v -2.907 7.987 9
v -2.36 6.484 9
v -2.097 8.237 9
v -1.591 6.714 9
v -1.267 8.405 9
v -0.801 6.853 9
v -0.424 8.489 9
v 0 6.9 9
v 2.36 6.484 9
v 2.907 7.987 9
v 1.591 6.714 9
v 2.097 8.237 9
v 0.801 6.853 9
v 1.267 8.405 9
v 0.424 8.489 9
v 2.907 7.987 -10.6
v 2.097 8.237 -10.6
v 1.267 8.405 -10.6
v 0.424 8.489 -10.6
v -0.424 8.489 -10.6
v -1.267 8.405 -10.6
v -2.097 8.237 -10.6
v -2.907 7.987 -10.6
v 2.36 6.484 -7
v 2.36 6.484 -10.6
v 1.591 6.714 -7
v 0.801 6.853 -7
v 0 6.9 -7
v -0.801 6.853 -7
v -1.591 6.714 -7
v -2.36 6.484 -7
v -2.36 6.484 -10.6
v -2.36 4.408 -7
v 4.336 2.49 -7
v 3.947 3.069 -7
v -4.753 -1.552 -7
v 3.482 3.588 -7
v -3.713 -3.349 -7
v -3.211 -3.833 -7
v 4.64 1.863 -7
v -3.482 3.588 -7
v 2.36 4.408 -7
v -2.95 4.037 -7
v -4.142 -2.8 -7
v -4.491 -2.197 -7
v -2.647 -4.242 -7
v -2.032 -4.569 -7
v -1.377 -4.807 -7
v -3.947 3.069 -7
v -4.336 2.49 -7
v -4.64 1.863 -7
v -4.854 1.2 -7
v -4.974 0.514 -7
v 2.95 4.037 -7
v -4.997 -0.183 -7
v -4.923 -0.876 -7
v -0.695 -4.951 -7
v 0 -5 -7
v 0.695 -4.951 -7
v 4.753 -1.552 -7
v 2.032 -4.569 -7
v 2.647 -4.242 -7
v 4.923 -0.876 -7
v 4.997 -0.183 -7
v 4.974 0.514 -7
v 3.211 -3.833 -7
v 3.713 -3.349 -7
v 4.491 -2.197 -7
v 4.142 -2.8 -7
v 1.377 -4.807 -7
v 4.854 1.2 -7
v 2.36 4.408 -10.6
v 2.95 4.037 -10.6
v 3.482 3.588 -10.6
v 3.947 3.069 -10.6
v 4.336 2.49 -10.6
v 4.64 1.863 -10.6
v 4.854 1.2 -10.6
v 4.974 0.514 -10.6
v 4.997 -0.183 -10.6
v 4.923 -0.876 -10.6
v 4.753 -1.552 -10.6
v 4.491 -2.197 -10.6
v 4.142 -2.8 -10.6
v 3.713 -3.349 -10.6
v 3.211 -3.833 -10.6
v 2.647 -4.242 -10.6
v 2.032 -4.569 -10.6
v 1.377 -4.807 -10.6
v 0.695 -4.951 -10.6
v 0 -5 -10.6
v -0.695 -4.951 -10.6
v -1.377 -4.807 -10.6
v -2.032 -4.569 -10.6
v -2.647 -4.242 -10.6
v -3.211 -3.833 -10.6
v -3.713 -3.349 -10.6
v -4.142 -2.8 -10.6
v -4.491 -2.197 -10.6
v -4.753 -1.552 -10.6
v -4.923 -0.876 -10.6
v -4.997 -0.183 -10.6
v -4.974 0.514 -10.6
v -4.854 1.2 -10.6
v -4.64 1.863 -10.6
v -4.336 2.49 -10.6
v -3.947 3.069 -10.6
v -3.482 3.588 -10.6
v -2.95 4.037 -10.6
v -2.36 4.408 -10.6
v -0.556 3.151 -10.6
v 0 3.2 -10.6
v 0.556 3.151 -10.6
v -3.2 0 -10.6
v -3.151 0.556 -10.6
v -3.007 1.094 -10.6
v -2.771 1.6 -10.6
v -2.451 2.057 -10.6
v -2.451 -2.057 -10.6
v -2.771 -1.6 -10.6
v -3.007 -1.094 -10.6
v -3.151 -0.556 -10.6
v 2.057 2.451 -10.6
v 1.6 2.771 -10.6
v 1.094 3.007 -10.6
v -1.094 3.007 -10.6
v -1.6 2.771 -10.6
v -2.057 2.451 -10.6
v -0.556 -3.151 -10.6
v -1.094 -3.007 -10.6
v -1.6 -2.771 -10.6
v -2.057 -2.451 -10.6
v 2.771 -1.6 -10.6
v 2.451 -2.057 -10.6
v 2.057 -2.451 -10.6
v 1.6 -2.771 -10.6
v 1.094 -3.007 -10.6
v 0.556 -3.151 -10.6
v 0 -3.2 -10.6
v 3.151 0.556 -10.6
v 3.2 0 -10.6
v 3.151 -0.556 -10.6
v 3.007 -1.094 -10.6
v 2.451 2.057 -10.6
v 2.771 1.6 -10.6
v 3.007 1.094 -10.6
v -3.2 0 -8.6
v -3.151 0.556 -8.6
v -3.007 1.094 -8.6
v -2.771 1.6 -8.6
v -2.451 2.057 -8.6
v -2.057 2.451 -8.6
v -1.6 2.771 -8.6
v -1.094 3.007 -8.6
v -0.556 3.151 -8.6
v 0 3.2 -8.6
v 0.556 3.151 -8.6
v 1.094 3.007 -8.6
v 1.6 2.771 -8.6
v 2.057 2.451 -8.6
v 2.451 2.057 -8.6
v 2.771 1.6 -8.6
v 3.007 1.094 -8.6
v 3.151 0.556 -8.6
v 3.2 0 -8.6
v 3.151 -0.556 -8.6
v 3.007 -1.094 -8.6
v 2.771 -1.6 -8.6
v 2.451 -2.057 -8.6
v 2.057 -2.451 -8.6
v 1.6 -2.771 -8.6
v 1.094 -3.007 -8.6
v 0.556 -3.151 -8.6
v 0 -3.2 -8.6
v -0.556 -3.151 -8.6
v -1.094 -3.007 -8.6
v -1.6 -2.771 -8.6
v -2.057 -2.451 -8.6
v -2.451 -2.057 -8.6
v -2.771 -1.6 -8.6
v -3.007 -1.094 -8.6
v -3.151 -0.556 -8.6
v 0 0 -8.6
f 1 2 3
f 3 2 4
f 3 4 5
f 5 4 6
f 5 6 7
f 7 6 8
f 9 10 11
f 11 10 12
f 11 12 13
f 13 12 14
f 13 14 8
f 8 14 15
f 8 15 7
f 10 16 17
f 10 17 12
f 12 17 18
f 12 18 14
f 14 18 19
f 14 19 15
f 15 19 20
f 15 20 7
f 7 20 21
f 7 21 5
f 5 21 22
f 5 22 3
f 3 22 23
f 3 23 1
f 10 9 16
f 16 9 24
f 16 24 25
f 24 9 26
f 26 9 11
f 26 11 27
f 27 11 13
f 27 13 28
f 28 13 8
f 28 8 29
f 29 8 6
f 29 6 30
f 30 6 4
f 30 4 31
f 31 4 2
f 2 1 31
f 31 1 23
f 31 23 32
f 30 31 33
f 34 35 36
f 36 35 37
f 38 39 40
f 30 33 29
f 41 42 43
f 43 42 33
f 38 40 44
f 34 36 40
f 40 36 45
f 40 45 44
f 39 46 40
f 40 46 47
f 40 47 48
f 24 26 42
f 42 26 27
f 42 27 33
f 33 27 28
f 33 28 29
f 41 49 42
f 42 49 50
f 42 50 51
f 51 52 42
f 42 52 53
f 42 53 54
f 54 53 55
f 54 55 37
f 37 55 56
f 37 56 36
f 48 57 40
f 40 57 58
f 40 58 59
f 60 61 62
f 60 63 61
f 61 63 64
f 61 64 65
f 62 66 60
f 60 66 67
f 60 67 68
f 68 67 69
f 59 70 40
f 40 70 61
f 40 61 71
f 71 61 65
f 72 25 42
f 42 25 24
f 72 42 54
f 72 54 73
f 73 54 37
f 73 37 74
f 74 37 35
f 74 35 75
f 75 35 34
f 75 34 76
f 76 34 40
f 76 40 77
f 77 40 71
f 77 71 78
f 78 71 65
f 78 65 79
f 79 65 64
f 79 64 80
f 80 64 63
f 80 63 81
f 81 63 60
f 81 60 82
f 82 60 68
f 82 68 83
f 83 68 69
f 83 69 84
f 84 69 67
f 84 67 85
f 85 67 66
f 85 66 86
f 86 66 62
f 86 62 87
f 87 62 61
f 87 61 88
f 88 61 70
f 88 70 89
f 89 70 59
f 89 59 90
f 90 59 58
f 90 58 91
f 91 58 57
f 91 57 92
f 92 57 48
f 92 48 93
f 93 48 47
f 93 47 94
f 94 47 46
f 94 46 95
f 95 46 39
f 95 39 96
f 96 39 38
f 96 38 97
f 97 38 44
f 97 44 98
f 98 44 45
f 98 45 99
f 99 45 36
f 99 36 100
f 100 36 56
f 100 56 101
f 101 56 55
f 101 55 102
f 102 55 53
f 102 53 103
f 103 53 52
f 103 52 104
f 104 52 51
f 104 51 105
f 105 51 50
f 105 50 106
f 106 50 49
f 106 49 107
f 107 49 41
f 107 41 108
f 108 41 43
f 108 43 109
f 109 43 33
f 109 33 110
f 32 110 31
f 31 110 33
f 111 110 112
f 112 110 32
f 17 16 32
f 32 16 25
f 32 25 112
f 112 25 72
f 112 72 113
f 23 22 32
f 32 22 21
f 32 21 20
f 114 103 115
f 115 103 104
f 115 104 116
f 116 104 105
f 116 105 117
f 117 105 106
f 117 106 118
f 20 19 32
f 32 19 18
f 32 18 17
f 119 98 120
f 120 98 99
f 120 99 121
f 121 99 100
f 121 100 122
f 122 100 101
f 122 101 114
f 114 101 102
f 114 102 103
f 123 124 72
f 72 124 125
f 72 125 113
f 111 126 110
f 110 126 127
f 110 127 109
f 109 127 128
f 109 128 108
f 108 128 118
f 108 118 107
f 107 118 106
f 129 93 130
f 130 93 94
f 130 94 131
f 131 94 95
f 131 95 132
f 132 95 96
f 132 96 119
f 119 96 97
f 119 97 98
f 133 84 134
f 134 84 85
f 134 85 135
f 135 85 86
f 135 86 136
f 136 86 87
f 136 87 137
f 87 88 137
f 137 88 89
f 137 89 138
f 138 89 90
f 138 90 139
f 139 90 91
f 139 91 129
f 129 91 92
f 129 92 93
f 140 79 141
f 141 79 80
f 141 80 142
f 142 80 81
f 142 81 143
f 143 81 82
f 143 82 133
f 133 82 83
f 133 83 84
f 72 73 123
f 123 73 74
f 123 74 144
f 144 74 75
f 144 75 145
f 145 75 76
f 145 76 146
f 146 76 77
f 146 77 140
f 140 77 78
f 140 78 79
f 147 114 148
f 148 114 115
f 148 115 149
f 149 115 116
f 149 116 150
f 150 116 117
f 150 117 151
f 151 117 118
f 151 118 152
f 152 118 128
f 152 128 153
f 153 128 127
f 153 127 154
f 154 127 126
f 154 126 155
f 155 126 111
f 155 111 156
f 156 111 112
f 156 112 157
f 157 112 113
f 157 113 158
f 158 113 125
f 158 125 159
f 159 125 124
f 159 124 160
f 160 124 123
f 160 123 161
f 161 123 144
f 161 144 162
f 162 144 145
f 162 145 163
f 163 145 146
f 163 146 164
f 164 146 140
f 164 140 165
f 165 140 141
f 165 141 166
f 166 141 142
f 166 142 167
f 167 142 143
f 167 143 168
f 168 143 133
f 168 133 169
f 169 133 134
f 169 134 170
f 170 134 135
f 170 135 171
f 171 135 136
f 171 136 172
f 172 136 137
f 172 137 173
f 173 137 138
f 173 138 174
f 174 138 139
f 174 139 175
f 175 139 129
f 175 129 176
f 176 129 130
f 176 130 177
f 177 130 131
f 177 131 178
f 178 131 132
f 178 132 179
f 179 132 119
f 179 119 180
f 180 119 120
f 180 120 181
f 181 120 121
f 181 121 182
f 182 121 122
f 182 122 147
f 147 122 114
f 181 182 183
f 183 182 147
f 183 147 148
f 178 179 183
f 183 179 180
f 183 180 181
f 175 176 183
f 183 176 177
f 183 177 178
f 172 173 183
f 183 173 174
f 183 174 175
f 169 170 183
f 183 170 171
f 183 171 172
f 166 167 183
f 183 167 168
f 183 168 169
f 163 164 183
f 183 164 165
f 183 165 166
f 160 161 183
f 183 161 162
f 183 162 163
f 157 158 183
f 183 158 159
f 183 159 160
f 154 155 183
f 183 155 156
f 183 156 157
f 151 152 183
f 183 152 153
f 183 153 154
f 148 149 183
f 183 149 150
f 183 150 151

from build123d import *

# Parameters (mm, degrees)
SKETCH_1_R               = 8.5
SKETCH_1_R_2             = 3.6
SKETCH_1_R_3             = 1.25
SKETCH_1_R_4             = 0.6
EXTRUDE_1_DEPTH          = 9
SKETCH_2_R               = 4.3
CUT_EXTRUDE_1_DEPTH      = 0.8
SKETCH_3_R               = 5.9
SKETCH_3_R_2             = 3.6
EXTRUDE_2_DEPTH          = 2.5
SKETCH_5_R               = 4.3
CUT_EXTRUDE_2_DEPTH      = 0.8
EXTRUDE_3_DEPTH          = 7
CUT_EXTRUDE_6_DEPTH      = 1
CUT_EXTRUDE_6_DEPTH_BACK = 17
EXTRUDE_4_DEPTH          = 3.6
SKETCH_8_R               = 3.2
CUT_EXTRUDE_3_DEPTH      = 2


with BuildPart() as part:
    # 스케치1 → 보스-돌출1 (new body)
    with BuildSketch(Plane.XY):
        Circle(SKETCH_1_R)
        Circle(SKETCH_1_R_2, mode=Mode.SUBTRACT)
        with Locations((6.125, 0)):
            Circle(SKETCH_1_R_3, mode=Mode.SUBTRACT)
        with Locations((-6.8, 0)):
            Circle(SKETCH_1_R_4, mode=Mode.SUBTRACT)
    extrude(amount=EXTRUDE_1_DEPTH)

    # 스케치2 → 컷-돌출1 (cut)
    with BuildSketch(Plane.XY.offset(9)):
        Circle(SKETCH_2_R)
    extrude(amount=-CUT_EXTRUDE_1_DEPTH, mode=Mode.SUBTRACT)

    # 스케치3 → 보스-돌출2 (add)
    with BuildSketch(Plane(origin=(0, 0, 0), x_dir=(-1, 0, 0), z_dir=(0, 0, -1))):
        Circle(SKETCH_3_R)
        Circle(SKETCH_3_R_2, mode=Mode.SUBTRACT)
    extrude(amount=EXTRUDE_2_DEPTH)

    # 스케치4 → 컷-회전1 (revolve, cut)
    with BuildSketch(Plane(origin=(0, 0, 0), x_dir=(0, 0, -1), z_dir=(1, 0, 0))):
        Polygon((2.5, 5.9), (0, 5.9), (1.25, 4.6), align=None)
    revolve(axis=Axis((0, 0, 0), (0, 0, -1)), mode=Mode.SUBTRACT)

    # 스케치5 → 컷-돌출2 (cut)
    with BuildSketch(Plane(origin=(0, 0, -2.5), x_dir=(-1, 0, 0), z_dir=(0, 0, -1))):
        Circle(SKETCH_5_R)
    extrude(amount=-CUT_EXTRUDE_2_DEPTH, mode=Mode.SUBTRACT)

    # 스케치6 → 보스-돌출3 (add)
    with BuildSketch(Plane(origin=(0, 0, 0), x_dir=(-1, 0, 0), z_dir=(0, 0, -1))):
        with BuildLine():
            Line((-2.907171218, 7.987387277), (-2.359938989, 6.483879083))
            ThreePointArc((-2.359938989, 6.483879083), (0, 6.9), (2.359938989, 6.483879083))
            Line((2.359938989, 6.483879083), (2.907171218, 7.987387277))
            ThreePointArc((2.907171218, 7.987387277), (0, 8.5), (-2.907171218, 7.987387277))
        make_face()
    extrude(amount=EXTRUDE_3_DEPTH)

    # 스케치10 → 컷-돌출6 (cut, two sides)
    with BuildSketch(Plane(origin=(0, 0, -7), x_dir=(-1, 0, 0), z_dir=(0, 0, -1))) as cut_extrude_6_sk:
        with BuildLine():
            ThreePointArc((-2.907171218, 7.987387277), (0, -8.5), (2.907171218, 7.987387277))
            Line((2.907171218, 7.987387277), (2.359938989, 6.483879083))
            ThreePointArc((2.359938989, 6.483879083), (0, 6.9), (-2.359938989, 6.483879083))
            Line((-2.359938989, 6.483879083), (-2.907171218, 7.987387277))
        make_face()
    extrude(amount=CUT_EXTRUDE_6_DEPTH, mode=Mode.SUBTRACT)
    extrude(cut_extrude_6_sk.sketch, amount=-CUT_EXTRUDE_6_DEPTH_BACK, mode=Mode.SUBTRACT)

    # 스케치7 → 보스-돌출4 (add)
    with BuildSketch(Plane(origin=(0, 0, -7), x_dir=(-1, 0, 0), z_dir=(0, 0, -1))):
        with BuildLine():
            Line((-2.359938989, 6.483879083), (-2.359938989, 4.408025405))
            ThreePointArc((-2.359938989, 4.408025405), (0, -5), (2.359938989, 4.408025405))
            Line((2.359938989, 4.408025405), (2.359938989, 6.483879083))
            Line((2.359938989, 6.483879083), (2.907171218, 7.987387277))
            ThreePointArc((2.907171218, 7.987387277), (0, 8.5), (-2.907171218, 7.987387277))
            Line((-2.907171218, 7.987387277), (-2.359938989, 6.483879083))
        make_face()
    extrude(amount=EXTRUDE_4_DEPTH)

    # 스케치8 → 컷-돌출3 (cut)
    with BuildSketch(Plane(origin=(0, 0, -10.6), x_dir=(-1, 0, 0), z_dir=(0, 0, -1))):
        Circle(SKETCH_8_R)
    extrude(amount=-CUT_EXTRUDE_3_DEPTH, mode=Mode.SUBTRACT)


solid = part.part
